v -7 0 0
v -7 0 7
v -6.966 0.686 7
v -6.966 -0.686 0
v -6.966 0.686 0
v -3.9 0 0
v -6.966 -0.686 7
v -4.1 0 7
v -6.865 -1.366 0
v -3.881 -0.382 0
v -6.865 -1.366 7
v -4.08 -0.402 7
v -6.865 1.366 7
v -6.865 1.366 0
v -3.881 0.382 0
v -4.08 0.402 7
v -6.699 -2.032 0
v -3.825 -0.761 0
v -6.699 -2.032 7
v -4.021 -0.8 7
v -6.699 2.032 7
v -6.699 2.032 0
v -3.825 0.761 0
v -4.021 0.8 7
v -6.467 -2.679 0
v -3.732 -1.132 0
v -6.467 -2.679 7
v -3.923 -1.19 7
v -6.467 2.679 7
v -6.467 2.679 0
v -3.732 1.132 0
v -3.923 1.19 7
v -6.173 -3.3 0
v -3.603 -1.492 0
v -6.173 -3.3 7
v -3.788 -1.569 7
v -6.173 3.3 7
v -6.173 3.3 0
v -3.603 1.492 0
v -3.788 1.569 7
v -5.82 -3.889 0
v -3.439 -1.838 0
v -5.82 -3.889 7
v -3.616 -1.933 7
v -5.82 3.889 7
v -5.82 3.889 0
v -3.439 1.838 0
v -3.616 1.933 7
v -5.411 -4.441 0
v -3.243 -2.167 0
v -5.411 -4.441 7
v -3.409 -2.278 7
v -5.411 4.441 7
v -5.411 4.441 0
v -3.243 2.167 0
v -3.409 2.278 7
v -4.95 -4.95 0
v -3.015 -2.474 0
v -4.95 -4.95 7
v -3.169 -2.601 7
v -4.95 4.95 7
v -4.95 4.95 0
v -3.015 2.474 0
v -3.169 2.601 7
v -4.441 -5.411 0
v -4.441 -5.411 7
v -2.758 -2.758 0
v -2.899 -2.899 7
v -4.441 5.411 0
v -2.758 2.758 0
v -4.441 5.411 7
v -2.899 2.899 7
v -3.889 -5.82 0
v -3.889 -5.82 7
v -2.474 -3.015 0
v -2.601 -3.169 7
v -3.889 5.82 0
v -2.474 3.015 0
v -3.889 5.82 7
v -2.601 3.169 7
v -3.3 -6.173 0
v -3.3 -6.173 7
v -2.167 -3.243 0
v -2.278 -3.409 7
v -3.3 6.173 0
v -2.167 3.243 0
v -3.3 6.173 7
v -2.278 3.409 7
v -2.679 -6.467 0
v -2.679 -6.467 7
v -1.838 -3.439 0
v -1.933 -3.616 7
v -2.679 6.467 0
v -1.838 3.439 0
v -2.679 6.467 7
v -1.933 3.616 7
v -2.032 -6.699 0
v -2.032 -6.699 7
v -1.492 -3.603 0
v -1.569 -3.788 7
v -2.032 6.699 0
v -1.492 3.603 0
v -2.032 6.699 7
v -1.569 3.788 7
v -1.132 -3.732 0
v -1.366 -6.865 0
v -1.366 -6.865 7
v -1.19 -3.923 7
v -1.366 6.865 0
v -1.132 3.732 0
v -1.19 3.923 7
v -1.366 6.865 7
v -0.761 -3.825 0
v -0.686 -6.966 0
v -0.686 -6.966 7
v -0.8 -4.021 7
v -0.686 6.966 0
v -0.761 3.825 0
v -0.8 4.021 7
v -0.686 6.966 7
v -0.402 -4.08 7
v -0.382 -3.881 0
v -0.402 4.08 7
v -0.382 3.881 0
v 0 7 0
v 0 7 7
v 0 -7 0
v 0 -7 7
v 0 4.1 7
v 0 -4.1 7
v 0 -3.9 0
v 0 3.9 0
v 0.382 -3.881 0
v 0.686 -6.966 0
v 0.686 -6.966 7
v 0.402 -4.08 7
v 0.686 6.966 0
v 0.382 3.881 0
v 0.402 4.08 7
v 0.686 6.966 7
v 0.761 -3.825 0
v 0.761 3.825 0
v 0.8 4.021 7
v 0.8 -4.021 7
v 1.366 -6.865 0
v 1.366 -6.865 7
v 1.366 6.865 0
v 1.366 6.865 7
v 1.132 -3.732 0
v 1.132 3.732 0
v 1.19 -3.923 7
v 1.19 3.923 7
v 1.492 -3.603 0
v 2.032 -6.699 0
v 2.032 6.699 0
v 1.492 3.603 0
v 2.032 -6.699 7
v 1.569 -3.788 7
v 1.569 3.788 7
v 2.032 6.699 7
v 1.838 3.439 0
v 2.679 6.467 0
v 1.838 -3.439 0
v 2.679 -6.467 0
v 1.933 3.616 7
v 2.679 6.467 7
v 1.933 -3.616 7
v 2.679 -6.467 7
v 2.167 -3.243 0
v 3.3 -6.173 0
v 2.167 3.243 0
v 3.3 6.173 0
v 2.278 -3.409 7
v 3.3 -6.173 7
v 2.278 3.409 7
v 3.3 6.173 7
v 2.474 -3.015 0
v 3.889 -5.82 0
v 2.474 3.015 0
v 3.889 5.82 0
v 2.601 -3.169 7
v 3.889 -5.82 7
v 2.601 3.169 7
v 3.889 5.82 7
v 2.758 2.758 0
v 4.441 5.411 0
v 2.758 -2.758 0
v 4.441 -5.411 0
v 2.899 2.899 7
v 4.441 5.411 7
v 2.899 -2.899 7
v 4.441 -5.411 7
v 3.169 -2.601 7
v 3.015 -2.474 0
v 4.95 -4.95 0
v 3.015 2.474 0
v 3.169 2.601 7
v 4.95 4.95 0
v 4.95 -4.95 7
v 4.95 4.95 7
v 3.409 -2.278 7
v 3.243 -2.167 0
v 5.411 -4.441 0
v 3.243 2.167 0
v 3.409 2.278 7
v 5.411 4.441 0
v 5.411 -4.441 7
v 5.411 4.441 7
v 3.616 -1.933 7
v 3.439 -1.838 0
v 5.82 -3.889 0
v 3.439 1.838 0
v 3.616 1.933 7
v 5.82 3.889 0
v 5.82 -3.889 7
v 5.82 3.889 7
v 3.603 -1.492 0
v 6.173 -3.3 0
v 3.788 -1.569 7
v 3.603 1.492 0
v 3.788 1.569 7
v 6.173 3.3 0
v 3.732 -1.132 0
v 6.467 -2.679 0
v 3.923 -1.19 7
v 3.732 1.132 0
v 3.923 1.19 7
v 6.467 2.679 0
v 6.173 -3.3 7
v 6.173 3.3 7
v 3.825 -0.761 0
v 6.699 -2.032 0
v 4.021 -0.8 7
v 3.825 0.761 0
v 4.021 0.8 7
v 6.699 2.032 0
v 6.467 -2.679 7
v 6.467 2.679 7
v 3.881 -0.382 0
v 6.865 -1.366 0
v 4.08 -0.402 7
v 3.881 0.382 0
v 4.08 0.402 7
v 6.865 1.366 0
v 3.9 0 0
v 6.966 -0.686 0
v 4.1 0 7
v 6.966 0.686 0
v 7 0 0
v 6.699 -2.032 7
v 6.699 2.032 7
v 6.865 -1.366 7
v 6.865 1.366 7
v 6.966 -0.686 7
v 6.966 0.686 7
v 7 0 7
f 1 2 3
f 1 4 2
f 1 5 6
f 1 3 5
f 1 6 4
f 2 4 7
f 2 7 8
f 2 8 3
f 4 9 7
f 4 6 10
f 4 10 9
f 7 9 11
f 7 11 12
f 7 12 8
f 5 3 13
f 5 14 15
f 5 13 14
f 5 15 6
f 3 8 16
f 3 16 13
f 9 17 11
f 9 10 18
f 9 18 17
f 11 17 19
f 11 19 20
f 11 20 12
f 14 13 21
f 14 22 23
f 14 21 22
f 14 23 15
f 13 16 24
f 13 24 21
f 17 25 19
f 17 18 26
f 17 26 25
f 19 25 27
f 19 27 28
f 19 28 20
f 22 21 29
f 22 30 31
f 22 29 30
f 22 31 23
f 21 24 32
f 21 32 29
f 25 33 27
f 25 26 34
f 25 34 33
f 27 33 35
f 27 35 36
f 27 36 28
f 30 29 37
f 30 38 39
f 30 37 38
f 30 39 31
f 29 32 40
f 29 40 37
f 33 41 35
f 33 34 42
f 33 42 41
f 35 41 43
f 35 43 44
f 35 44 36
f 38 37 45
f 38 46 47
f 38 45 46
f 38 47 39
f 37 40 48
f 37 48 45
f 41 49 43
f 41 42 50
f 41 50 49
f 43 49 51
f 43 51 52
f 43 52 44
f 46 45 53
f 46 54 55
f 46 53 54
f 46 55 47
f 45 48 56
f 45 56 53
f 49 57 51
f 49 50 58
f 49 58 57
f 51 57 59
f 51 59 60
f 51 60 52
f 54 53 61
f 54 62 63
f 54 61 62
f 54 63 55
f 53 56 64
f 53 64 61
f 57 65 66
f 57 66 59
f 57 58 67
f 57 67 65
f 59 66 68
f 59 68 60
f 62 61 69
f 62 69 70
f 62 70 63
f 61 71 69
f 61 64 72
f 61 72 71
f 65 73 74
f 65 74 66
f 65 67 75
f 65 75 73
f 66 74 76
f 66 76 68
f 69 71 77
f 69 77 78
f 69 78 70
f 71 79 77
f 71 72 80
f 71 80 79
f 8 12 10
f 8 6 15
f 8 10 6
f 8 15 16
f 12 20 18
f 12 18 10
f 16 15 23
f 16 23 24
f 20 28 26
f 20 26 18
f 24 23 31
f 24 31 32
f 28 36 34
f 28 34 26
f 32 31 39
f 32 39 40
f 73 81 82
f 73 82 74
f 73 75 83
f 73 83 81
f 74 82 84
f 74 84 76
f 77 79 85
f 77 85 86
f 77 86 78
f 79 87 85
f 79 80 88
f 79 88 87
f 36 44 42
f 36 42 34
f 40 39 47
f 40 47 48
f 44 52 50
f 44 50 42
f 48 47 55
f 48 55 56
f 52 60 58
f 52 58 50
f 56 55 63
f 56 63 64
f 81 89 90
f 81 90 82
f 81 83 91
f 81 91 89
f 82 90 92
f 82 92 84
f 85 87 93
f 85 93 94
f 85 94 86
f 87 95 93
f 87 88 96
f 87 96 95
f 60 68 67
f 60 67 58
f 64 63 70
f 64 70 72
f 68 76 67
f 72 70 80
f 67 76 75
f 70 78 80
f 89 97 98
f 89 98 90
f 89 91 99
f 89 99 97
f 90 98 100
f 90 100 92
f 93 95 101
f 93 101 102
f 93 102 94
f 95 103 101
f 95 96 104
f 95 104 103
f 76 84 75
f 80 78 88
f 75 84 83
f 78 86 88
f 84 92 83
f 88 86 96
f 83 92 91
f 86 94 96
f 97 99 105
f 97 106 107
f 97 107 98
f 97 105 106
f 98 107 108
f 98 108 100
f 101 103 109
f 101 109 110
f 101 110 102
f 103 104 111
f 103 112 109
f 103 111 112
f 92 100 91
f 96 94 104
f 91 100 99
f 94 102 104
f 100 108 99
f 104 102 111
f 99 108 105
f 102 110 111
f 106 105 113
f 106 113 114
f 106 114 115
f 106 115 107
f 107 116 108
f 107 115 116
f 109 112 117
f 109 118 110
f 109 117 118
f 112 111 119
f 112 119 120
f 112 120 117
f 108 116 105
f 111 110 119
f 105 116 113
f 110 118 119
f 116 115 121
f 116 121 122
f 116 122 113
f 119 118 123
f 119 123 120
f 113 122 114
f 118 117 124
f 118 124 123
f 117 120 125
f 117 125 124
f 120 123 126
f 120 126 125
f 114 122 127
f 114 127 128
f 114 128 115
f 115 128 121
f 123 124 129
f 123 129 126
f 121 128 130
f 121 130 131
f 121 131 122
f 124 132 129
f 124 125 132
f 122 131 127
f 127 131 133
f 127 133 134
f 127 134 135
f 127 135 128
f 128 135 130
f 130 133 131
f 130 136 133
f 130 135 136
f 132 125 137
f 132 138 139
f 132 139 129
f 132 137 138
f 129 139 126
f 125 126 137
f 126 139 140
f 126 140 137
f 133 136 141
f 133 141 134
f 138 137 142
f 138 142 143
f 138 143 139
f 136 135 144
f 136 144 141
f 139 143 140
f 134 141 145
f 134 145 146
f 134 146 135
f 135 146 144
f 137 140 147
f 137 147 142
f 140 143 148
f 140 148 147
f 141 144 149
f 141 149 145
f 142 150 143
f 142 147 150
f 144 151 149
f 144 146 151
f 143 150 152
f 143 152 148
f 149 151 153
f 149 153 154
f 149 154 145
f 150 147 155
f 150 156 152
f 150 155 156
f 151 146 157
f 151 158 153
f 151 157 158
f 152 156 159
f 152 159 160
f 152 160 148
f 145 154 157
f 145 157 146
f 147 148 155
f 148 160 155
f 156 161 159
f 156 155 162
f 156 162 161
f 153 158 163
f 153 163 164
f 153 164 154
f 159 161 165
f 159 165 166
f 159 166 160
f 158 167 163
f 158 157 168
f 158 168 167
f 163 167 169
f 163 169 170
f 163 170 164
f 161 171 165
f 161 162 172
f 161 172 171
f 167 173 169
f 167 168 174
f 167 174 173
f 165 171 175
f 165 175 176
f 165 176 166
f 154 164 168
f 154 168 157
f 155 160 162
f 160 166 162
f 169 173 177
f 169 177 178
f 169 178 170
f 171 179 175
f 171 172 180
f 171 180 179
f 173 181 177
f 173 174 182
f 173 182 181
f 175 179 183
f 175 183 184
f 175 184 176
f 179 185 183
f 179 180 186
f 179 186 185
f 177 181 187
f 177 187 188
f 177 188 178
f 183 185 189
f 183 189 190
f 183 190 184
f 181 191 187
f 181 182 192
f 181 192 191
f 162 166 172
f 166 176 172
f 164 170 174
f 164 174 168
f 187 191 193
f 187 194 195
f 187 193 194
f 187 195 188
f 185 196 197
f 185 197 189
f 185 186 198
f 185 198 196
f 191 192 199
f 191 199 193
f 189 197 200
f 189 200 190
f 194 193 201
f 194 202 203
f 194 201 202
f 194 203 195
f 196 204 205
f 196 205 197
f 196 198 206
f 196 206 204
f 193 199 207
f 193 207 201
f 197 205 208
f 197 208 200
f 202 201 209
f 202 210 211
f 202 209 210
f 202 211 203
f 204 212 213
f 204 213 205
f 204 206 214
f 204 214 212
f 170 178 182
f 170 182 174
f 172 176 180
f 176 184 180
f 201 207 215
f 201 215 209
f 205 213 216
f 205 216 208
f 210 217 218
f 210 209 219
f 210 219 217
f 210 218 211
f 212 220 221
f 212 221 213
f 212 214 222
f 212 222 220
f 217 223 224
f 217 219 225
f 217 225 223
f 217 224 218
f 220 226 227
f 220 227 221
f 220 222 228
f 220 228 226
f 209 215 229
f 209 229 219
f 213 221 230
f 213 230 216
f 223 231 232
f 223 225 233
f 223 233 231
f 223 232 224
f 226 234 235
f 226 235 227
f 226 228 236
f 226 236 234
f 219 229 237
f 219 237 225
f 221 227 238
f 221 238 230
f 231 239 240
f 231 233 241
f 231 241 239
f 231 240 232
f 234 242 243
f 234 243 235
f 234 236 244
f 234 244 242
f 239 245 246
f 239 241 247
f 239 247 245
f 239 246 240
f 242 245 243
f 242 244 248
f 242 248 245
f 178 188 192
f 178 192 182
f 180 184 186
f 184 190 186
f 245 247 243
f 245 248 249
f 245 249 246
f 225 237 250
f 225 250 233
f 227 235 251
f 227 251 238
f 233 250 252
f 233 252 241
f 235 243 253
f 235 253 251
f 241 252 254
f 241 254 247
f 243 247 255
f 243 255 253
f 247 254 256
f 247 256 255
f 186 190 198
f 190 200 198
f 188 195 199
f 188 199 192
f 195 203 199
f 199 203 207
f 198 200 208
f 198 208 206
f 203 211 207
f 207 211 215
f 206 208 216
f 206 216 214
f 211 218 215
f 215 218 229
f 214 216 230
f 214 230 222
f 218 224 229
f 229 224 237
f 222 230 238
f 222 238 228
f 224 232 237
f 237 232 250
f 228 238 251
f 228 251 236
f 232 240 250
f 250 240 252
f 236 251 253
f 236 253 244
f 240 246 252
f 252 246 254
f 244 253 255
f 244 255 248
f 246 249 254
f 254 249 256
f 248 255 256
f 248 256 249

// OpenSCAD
// Start: lazy_union
default_5_default_5();
// End: lazy_union

// Modules.

// 'PartMaterial undef-default - default 5.0'
module default_5_default_5() {
  // 'None : _combine_solids_and_holes'
  union() {
    // 'default : _combine_solids_and_holes'
    union() {
      // 'extrusion : _combine_solids_and_holes'
      union() {
        // 'extrusion'
        polyhedron(points=[[3.9, 0.0, 0.0], [4.1, 0.0, 7.0], [7.0, 0.0, 7.0], [7.0, 0.0, 0.0], [3.881220434021568, 0.38226684728528637, 0.0], [4.080257379356007, 0.40187027535119846, 7.0], [6.966293086705378, 0.6861199823069242, 7.0], [6.966293086705378, 0.6861199823069242, 0.0], [3.8250625935725986, 0.7608522558629002, 0.0], [4.021219649653244, 0.7998703202661257, 7.0], [6.865496962822613, 1.3656322541128978, 7.0], [6.865496962822613, 1.3656322541128978, 0.0], [3.7320673093556143, 1.1321102412924031, 0.0], [3.923455376502056, 1.1901671767432955, 7.0], [6.698582350125462, 2.031992740781236, 7.0], [6.698582350125462, 2.031992740781236, 0.0], [3.6031301767940183, 1.4924653862238502, 0.0], [3.787906083296275, 1.5690020726968679, 7.0], [6.467156727579007, 2.6787840265556286, 7.0], [6.467156727579007, 2.6787840265556286, 0.0], [3.4394929309585844, 1.8384472736213908, 0.0], [3.6158771838282555, 1.93272662098659, 7.0], [6.1734488504384855, 3.2997771577819837, 7.0], [6.1734488504384855, 3.2997771577819837, 0.0], [3.2427314879799263, 2.1667239087764485, 0.0], [3.409025410440435, 2.277837955380369, 7.0], [5.820287286117817, 3.8889916311372152, 7.0], [5.820287286117817, 3.8889916311372152, 0.0], [3.0147407681146743, 2.4741338082382174, 0.0], [3.169342858787221, 2.601012465070946, 7.0], [5.411073173539159, 4.440752989145518, 7.0], [5.411073173539159, 4.440752989145518, 0.0], [2.7577164466275357, 2.7577164466275357, 0.0], [2.899137802864845, 2.899137802864845, 7.0], [4.949747468305833, 4.949747468305833, 7.0], [4.949747468305833, 4.949747468305833, 0.0], [2.4741338082382174, 3.014740768114674, 0.0], [2.601012465070946, 3.1693428587872208, 7.0], [4.440752989145518, 5.411073173539158, 7.0], [4.440752989145518, 5.411073173539158, 0.0], [2.166723908776449, 3.2427314879799263, 0.0], [2.2778379553803694, 3.409025410440435, 7.0], [3.888991631137216, 5.820287286117817, 7.0], [3.888991631137216, 5.820287286117817, 0.0], [1.8384472736213915, 3.439492930958584, 0.0], [1.9327266209865908, 3.615877183828255, 7.0], [3.2997771577819845, 6.173448850438485, 7.0], [3.2997771577819845, 6.173448850438485, 0.0], [1.4924653862238504, 3.6031301767940183, 0.0], [1.569002072696868, 3.787906083296275, 7.0], [2.678784026555629, 6.467156727579007, 7.0], [2.678784026555629, 6.467156727579007, 0.0], [1.1321102412924031, 3.7320673093556147, 0.0], [1.1901671767432955, 3.9234553765020563, 7.0], [2.031992740781236, 6.698582350125463, 7.0], [2.031992740781236, 6.698582350125463, 0.0], [0.7608522558629005, 3.8250625935725986, 0.0], [0.7998703202661261, 4.021219649653244, 7.0], [1.3656322541128982, 6.865496962822613, 7.0], [1.3656322541128982, 6.865496962822613, 0.0], [0.382266847285287, 3.8812204340215675, 0.0], [0.4018702753511991, 4.080257379356007, 7.0], [0.6861199823069254, 6.966293086705377, 7.0], [0.6861199823069254, 6.966293086705377, 0.0], [0.0, 3.9, 0.0], [0.0, 4.1, 7.0], [0.0, 7.0, 7.0], [0.0, 7.0, 0.0], [-0.3822668472852865, 3.881220434021568, 0.0], [-0.4018702753511986, 4.080257379356007, 7.0], [-0.6861199823069245, 6.966293086705378, 7.0], [-0.6861199823069245, 6.966293086705378, 0.0], [-0.7608522558629, 3.8250625935725986, 0.0], [-0.7998703202661255, 4.021219649653244, 7.0], [-1.3656322541128973, 6.865496962822613, 7.0], [-1.3656322541128973, 6.865496962822613, 0.0], [-1.1321102412924025, 3.7320673093556147, 0.0], [-1.1901671767432949, 3.9234553765020563, 7.0], [-2.0319927407812353, 6.698582350125463, 7.0], [-2.0319927407812353, 6.698582350125463, 0.0], [-1.49246538622385, 3.6031301767940183, 0.0], [-1.5690020726968676, 3.787906083296275, 7.0], [-2.678784026555628, 6.467156727579007, 7.0], [-2.678784026555628, 6.467156727579007, 0.0], [-1.838447273621391, 3.4394929309585844, 0.0], [-1.9327266209865903, 3.6158771838282555, 7.0], [-3.2997771577819837, 6.1734488504384855, 7.0], [-3.2997771577819837, 6.1734488504384855, 0.0], [-2.1667239087764476, 3.2427314879799267, 0.0], [-2.277837955380368, 3.4090254104404356, 7.0], [-3.8889916311372135, 5.820287286117818, 7.0], [-3.8889916311372135, 5.820287286117818, 0.0], [-2.474133808238217, 3.0147407681146747, 0.0], [-2.6010124650709456, 3.1693428587872217, 7.0], [-4.440752989145517, 5.41107317353916, 7.0], [-4.440752989145517, 5.41107317353916, 0.0], [-2.7577164466275352, 2.7577164466275357, 0.0], [-2.8991378028648445, 2.899137802864845, 7.0], [-4.949747468305832, 4.949747468305833, 7.0], [-4.949747468305832, 4.949747468305833, 0.0], [-3.0147407681146743, 2.4741338082382174, 0.0], [-3.169342858787221, 2.601012465070946, 7.0], [-5.411073173539159, 4.440752989145518, 7.0], [-5.411073173539159, 4.440752989145518, 0.0], [-3.2427314879799267, 2.1667239087764485, 0.0], [-3.4090254104404356, 2.277837955380369, 7.0], [-5.820287286117818, 3.8889916311372152, 7.0], [-5.820287286117818, 3.8889916311372152, 0.0], [-3.439492930958584, 1.8384472736213915, 0.0], [-3.615877183828255, 1.9327266209865908, 7.0], [-6.173448850438485, 3.2997771577819845, 7.0], [-6.173448850438485, 3.2997771577819845, 0.0], [-3.6031301767940183, 1.4924653862238506, 0.0], [-3.787906083296275, 1.5690020726968685, 7.0], [-6.467156727579007, 2.678784026555629, 7.0], [-6.467156727579007, 2.678784026555629, 0.0], [-3.7320673093556143, 1.1321102412924033, 0.0], [-3.923455376502056, 1.1901671767432958, 7.0], [-6.698582350125462, 2.0319927407812366, 7.0], [-6.698582350125462, 2.0319927407812366, 0.0], [-3.8250625935725986, 0.7608522558629015, 0.0], [-4.021219649653244, 0.7998703202661273, 7.0], [-6.865496962822613, 1.3656322541129002, 7.0], [-6.865496962822613, 1.3656322541129002, 0.0], [-3.8812204340215675, 0.3822668472852872, 0.0], [-4.080257379356007, 0.40187027535119935, 7.0], [-6.966293086705377, 0.6861199823069257, 7.0], [-6.966293086705377, 0.6861199823069257, 0.0], [-3.9, 0.0, 0.0], [-4.1, 0.0, 7.0], [-7.0, 0.0, 7.0], [-7.0, 0.0, 0.0], [-3.881220434021568, -0.3822668472852863, 0.0], [-4.080257379356007, -0.4018702753511984, 7.0], [-6.966293086705378, -0.6861199823069242, 7.0], [-6.966293086705378, -0.6861199823069242, 0.0], [-3.8250625935725986, -0.7608522558629006, 0.0], [-4.021219649653244, -0.7998703202661263, 7.0], [-6.865496962822613, -1.3656322541128985, 7.0], [-6.865496962822613, -1.3656322541128985, 0.0], [-3.7320673093556147, -1.1321102412924022, 0.0], [-3.9234553765020563, -1.1901671767432946, 7.0], [-6.698582350125463, -2.031992740781235, 7.0], [-6.698582350125463, -2.031992740781235, 0.0], [-3.6031301767940187, -1.4924653862238497, 0.0], [-3.7879060832962756, -1.5690020726968674, 7.0], [-6.467156727579008, -2.6787840265556278, 7.0], [-6.467156727579008, -2.6787840265556278, 0.0], [-3.4394929309585844, -1.8384472736213908, 0.0], [-3.6158771838282555, -1.93272662098659, 7.0], [-6.1734488504384855, -3.2997771577819837, 7.0], [-6.1734488504384855, -3.2997771577819837, 0.0], [-3.242731487979927, -2.1667239087764476, 0.0], [-3.409025410440436, -2.277837955380368, 7.0], [-5.820287286117818, -3.8889916311372135, 7.0], [-5.820287286117818, -3.8889916311372135, 0.0], [-3.0147407681146747, -2.4741338082382165, 0.0], [-3.1693428587872217, -2.601012465070945, 7.0], [-5.41107317353916, -4.440752989145517, 7.0], [-5.41107317353916, -4.440752989145517, 0.0], [-2.757716446627536, -2.7577164466275352, 0.0], [-2.8991378028648453, -2.8991378028648445, 7.0], [-4.949747468305834, -4.949747468305832, 7.0], [-4.949747468305834, -4.949747468305832, 0.0], [-2.474133808238219, -3.014740768114673, 0.0], [-2.6010124650709483, -3.16934285878722, 7.0], [-4.440752989145522, -5.411073173539156, 7.0], [-4.440752989145522, -5.411073173539156, 0.0], [-2.1667239087764485, -3.2427314879799263, 0.0], [-2.277837955380369, -3.409025410440435, 7.0], [-3.8889916311372152, -5.820287286117817, 7.0], [-3.8889916311372152, -5.820287286117817, 0.0], [-1.8384472736213917, -3.439492930958584, 0.0], [-1.932726620986591, -3.615877183828255, 7.0], [-3.299777157781985, -6.173448850438485, 7.0], [-3.299777157781985, -6.173448850438485, 0.0], [-1.4924653862238524, -3.6031301767940174, 0.0], [-1.5690020726968703, -3.7879060832962743, 7.0], [-2.678784026555632, -6.467156727579006, 7.0], [-2.678784026555632, -6.467156727579006, 0.0], [-1.1321102412924036, -3.7320673093556143, 0.0], [-1.190167176743296, -3.923455376502056, 7.0], [-2.031992740781237, -6.698582350125462, 7.0], [-2.031992740781237, -6.698582350125462, 0.0], [-0.7608522558629017, -3.825062593572598, 0.0], [-0.7998703202661275, -4.0212196496532435, 7.0], [-1.3656322541129007, -6.865496962822612, 7.0], [-1.3656322541129007, -6.865496962822612, 0.0], [-0.38226684728528576, -3.881220434021568, 0.0], [-0.4018702753511978, -4.080257379356007, 7.0], [-0.6861199823069232, -6.966293086705378, 7.0], [-0.6861199823069232, -6.966293086705378, 0.0], [0.0, -3.9, 0.0], [0.0, -4.1, 7.0], [0.0, -7.0, 7.0], [0.0, -7.0, 0.0], [0.3822668472852843, -3.881220434021568, 0.0], [0.40187027535119635, -4.080257379356007, 7.0], [0.6861199823069206, -6.966293086705378, 7.0], [0.6861199823069206, -6.966293086705378, 0.0], [0.7608522558629004, -3.8250625935725986, 0.0], [0.7998703202661259, -4.021219649653244, 7.0], [1.365632254112898, -6.865496962822613, 7.0], [1.365632254112898, -6.865496962822613, 0.0], [1.132110241292402, -3.7320673093556147, 0.0], [1.1901671767432944, -3.9234553765020563, 7.0], [2.0319927407812344, -6.698582350125463, 7.0], [2.0319927407812344, -6.698582350125463, 0.0], [1.492465386223851, -3.603130176794018, 0.0], [1.569002072696869, -3.7879060832962748, 7.0], [2.67878402655563, -6.467156727579006, 7.0], [2.67878402655563, -6.467156727579006, 0.0], [1.8384472736213906, -3.4394929309585844, 0.0], [1.9327266209865899, -3.6158771838282555, 7.0], [3.299777157781983, -6.1734488504384855, 7.0], [3.299777157781983, -6.1734488504384855, 0.0], [2.166723908776447, -3.242731487979927, 0.0], [2.277837955380367, -3.409025410440436, 7.0], [3.888991631137213, -5.820287286117818, 7.0], [3.888991631137213, -5.820287286117818, 0.0], [2.474133808238218, -3.014740768114674, 0.0], [2.6010124650709465, -3.1693428587872208, 7.0], [4.440752989145519, -5.411073173539158, 7.0], [4.440752989145519, -5.411073173539158, 0.0], [2.757716446627535, -2.757716446627536, 0.0], [2.899137802864844, -2.8991378028648453, 7.0], [4.949747468305832, -4.949747468305834, 7.0], [4.949747468305832, -4.949747468305834, 0.0], [3.0147407681146725, -2.474133808238219, 0.0], [3.1693428587872194, -2.6010124650709483, 7.0], [5.4110731735391555, -4.440752989145522, 7.0], [5.4110731735391555, -4.440752989145522, 0.0], [3.2427314879799263, -2.1667239087764485, 0.0], [3.409025410440435, -2.277837955380369, 7.0], [5.820287286117817, -3.8889916311372152, 7.0], [5.820287286117817, -3.8889916311372152, 0.0], [3.4394929309585835, -1.838447273621392, 0.0], [3.6158771838282546, -1.9327266209865912, 7.0], [6.173448850438484, -3.2997771577819854, 7.0], [6.173448850438484, -3.2997771577819854, 0.0], [3.6031301767940174, -1.4924653862238524, 0.0], [3.7879060832962743, -1.5690020726968705, 7.0], [6.467156727579006, -2.6787840265556326, 7.0], [6.467156727579006, -2.6787840265556326, 0.0], [3.7320673093556143, -1.1321102412924038, 0.0], [3.923455376502056, -1.1901671767432962, 7.0], [6.698582350125462, -2.0319927407812375, 7.0], [6.698582350125462, -2.0319927407812375, 0.0], [3.825062593572598, -0.760852255862902, 0.0], [4.0212196496532435, -0.7998703202661277, 7.0], [6.865496962822612, -1.3656322541129011, 7.0], [6.865496962822612, -1.3656322541129011, 0.0], [3.881220434021568, -0.382266847285286, 0.0], [4.080257379356007, -0.401870275351198, 7.0], [6.966293086705378, -0.6861199823069235, 7.0], [6.966293086705378, -0.6861199823069235, 0.0], [3.9, 0.0, 0.0], [4.1, 0.0, 7.0], [7.0, 0.0, 7.0], [7.0, 0.0, 0.0]], faces=[[0, 4, 5, 1], [1, 5, 6, 2], [2, 6, 7, 3], [3, 7, 4, 0], [4, 8, 9, 5], [5, 9, 10, 6], [6, 10, 11, 7], [7, 11, 8, 4], [8, 12, 13, 9], [9, 13, 14, 10], [10, 14, 15, 11], [11, 15, 12, 8], [12, 16, 17, 13], [13, 17, 18, 14], [14, 18, 19, 15], [15, 19, 16, 12], [16, 20, 21, 17], [17, 21, 22, 18], [18, 22, 23, 19], [19, 23, 20, 16], [20, 24, 25, 21], [21, 25, 26, 22], [22, 26, 27, 23], [23, 27, 24, 20], [24, 28, 29, 25], [25, 29, 30, 26], [26, 30, 31, 27], [27, 31, 28, 24], [28, 32, 33, 29], [29, 33, 34, 30], [30, 34, 35, 31], [31, 35, 32, 28], [32, 36, 37, 33], [33, 37, 38, 34], [34, 38, 39, 35], [35, 39, 36, 32], [36, 40, 41, 37], [37, 41, 42, 38], [38, 42, 43, 39], [39, 43, 40, 36], [40, 44, 45, 41], [41, 45, 46, 42], [42, 46, 47, 43], [43, 47, 44, 40], [44, 48, 49, 45], [45, 49, 50, 46], [46, 50, 51, 47], [47, 51, 48, 44], [48, 52, 53, 49], [49, 53, 54, 50], [50, 54, 55, 51], [51, 55, 52, 48], [52, 56, 57, 53], [53, 57, 58, 54], [54, 58, 59, 55], [55, 59, 56, 52], [56, 60, 61, 57], [57, 61, 62, 58], [58, 62, 63, 59], [59, 63, 60, 56], [60, 64, 65, 61], [61, 65, 66, 62], [62, 66, 67, 63], [63, 67, 64, 60], [64, 68, 69, 65], [65, 69, 70, 66], [66, 70, 71, 67], [67, 71, 68, 64], [68, 72, 73, 69], [69, 73, 74, 70], [70, 74, 75, 71], [71, 75, 72, 68], [72, 76, 77, 73], [73, 77, 78, 74], [74, 78, 79, 75], [75, 79, 76, 72], [76, 80, 81, 77], [77, 81, 82, 78], [78, 82, 83, 79], [79, 83, 80, 76], [80, 84, 85, 81], [81, 85, 86, 82], [82, 86, 87, 83], [83, 87, 84, 80], [84, 88, 89, 85], [85, 89, 90, 86], [86, 90, 91, 87], [87, 91, 88, 84], [88, 92, 93, 89], [89, 93, 94, 90], [90, 94, 95, 91], [91, 95, 92, 88], [92, 96, 97, 93], [93, 97, 98, 94], [94, 98, 99, 95], [95, 99, 96, 92], [96, 100, 101, 97], [97, 101, 102, 98], [98, 102, 103, 99], [99, 103, 100, 96], [100, 104, 105, 101], [101, 105, 106, 102], [102, 106, 107, 103], [103, 107, 104, 100], [104, 108, 109, 105], [105, 109, 110, 106], [106, 110, 111, 107], [107, 111, 108, 104], [108, 112, 113, 109], [109, 113, 114, 110], [110, 114, 115, 111], [111, 115, 112, 108], [112, 116, 117, 113], [113, 117, 118, 114], [114, 118, 119, 115], [115, 119, 116, 112], [116, 120, 121, 117], [117, 121, 122, 118], [118, 122, 123, 119], [119, 123, 120, 116], [120, 124, 125, 121], [121, 125, 126, 122], [122, 126, 127, 123], [123, 127, 124, 120], [124, 128, 129, 125], [125, 129, 130, 126], [126, 130, 131, 127], [127, 131, 128, 124], [128, 132, 133, 129], [129, 133, 134, 130], [130, 134, 135, 131], [131, 135, 132, 128], [132, 136, 137, 133], [133, 137, 138, 134], [134, 138, 139, 135], [135, 139, 136, 132], [136, 140, 141, 137], [137, 141, 142, 138], [138, 142, 143, 139], [139, 143, 140, 136], [140, 144, 145, 141], [141, 145, 146, 142], [142, 146, 147, 143], [143, 147, 144, 140], [144, 148, 149, 145], [145, 149, 150, 146], [146, 150, 151, 147], [147, 151, 148, 144], [148, 152, 153, 149], [149, 153, 154, 150], [150, 154, 155, 151], [151, 155, 152, 148], [152, 156, 157, 153], [153, 157, 158, 154], [154, 158, 159, 155], [155, 159, 156, 152], [156, 160, 161, 157], [157, 161, 162, 158], [158, 162, 163, 159], [159, 163, 160, 156], [160, 164, 165, 161], [161, 165, 166, 162], [162, 166, 167, 163], [163, 167, 164, 160], [164, 168, 169, 165], [165, 169, 170, 166], [166, 170, 171, 167], [167, 171, 168, 164], [168, 172, 173, 169], [169, 173, 174, 170], [170, 174, 175, 171], [171, 175, 172, 168], [172, 176, 177, 173], [173, 177, 178, 174], [174, 178, 179, 175], [175, 179, 176, 172], [176, 180, 181, 177], [177, 181, 182, 178], [178, 182, 183, 179], [179, 183, 180, 176], [180, 184, 185, 181], [181, 185, 186, 182], [182, 186, 187, 183], [183, 187, 184, 180], [184, 188, 189, 185], [185, 189, 190, 186], [186, 190, 191, 187], [187, 191, 188, 184], [188, 192, 193, 189], [189, 193, 194, 190], [190, 194, 195, 191], [191, 195, 192, 188], [192, 196, 197, 193], [193, 197, 198, 194], [194, 198, 199, 195], [195, 199, 196, 192], [196, 200, 201, 197], [197, 201, 202, 198], [198, 202, 203, 199], [199, 203, 200, 196], [200, 204, 205, 201], [201, 205, 206, 202], [202, 206, 207, 203], [203, 207, 204, 200], [204, 208, 209, 205], [205, 209, 210, 206], [206, 210, 211, 207], [207, 211, 208, 204], [208, 212, 213, 209], [209, 213, 214, 210], [210, 214, 215, 211], [211, 215, 212, 208], [212, 216, 217, 213], [213, 217, 218, 214], [214, 218, 219, 215], [215, 219, 216, 212], [216, 220, 221, 217], [217, 221, 222, 218], [218, 222, 223, 219], [219, 223, 220, 216], [220, 224, 225, 221], [221, 225, 226, 222], [222, 226, 227, 223], [223, 227, 224, 220], [224, 228, 229, 225], [225, 229, 230, 226], [226, 230, 231, 227], [227, 231, 228, 224], [228, 232, 233, 229], [229, 233, 234, 230], [230, 234, 235, 231], [231, 235, 232, 228], [232, 236, 237, 233], [233, 237, 238, 234], [234, 238, 239, 235], [235, 239, 236, 232], [236, 240, 241, 237], [237, 241, 242, 238], [238, 242, 243, 239], [239, 243, 240, 236], [240, 244, 245, 241], [241, 245, 246, 242], [242, 246, 247, 243], [243, 247, 244, 240], [244, 248, 249, 245], [245, 249, 250, 246], [246, 250, 251, 247], [247, 251, 248, 244], [248, 252, 253, 249], [249, 253, 254, 250], [250, 254, 255, 251], [251, 255, 252, 248], [252, 256, 257, 253], [253, 257, 258, 254], [254, 258, 259, 255], [255, 259, 256, 252], [256, 0, 1, 257], [257, 1, 2, 258], [258, 2, 3, 259], [259, 3, 0, 256]], convexity=10);
      }
    }
  }
} // end module default_5_default_5
